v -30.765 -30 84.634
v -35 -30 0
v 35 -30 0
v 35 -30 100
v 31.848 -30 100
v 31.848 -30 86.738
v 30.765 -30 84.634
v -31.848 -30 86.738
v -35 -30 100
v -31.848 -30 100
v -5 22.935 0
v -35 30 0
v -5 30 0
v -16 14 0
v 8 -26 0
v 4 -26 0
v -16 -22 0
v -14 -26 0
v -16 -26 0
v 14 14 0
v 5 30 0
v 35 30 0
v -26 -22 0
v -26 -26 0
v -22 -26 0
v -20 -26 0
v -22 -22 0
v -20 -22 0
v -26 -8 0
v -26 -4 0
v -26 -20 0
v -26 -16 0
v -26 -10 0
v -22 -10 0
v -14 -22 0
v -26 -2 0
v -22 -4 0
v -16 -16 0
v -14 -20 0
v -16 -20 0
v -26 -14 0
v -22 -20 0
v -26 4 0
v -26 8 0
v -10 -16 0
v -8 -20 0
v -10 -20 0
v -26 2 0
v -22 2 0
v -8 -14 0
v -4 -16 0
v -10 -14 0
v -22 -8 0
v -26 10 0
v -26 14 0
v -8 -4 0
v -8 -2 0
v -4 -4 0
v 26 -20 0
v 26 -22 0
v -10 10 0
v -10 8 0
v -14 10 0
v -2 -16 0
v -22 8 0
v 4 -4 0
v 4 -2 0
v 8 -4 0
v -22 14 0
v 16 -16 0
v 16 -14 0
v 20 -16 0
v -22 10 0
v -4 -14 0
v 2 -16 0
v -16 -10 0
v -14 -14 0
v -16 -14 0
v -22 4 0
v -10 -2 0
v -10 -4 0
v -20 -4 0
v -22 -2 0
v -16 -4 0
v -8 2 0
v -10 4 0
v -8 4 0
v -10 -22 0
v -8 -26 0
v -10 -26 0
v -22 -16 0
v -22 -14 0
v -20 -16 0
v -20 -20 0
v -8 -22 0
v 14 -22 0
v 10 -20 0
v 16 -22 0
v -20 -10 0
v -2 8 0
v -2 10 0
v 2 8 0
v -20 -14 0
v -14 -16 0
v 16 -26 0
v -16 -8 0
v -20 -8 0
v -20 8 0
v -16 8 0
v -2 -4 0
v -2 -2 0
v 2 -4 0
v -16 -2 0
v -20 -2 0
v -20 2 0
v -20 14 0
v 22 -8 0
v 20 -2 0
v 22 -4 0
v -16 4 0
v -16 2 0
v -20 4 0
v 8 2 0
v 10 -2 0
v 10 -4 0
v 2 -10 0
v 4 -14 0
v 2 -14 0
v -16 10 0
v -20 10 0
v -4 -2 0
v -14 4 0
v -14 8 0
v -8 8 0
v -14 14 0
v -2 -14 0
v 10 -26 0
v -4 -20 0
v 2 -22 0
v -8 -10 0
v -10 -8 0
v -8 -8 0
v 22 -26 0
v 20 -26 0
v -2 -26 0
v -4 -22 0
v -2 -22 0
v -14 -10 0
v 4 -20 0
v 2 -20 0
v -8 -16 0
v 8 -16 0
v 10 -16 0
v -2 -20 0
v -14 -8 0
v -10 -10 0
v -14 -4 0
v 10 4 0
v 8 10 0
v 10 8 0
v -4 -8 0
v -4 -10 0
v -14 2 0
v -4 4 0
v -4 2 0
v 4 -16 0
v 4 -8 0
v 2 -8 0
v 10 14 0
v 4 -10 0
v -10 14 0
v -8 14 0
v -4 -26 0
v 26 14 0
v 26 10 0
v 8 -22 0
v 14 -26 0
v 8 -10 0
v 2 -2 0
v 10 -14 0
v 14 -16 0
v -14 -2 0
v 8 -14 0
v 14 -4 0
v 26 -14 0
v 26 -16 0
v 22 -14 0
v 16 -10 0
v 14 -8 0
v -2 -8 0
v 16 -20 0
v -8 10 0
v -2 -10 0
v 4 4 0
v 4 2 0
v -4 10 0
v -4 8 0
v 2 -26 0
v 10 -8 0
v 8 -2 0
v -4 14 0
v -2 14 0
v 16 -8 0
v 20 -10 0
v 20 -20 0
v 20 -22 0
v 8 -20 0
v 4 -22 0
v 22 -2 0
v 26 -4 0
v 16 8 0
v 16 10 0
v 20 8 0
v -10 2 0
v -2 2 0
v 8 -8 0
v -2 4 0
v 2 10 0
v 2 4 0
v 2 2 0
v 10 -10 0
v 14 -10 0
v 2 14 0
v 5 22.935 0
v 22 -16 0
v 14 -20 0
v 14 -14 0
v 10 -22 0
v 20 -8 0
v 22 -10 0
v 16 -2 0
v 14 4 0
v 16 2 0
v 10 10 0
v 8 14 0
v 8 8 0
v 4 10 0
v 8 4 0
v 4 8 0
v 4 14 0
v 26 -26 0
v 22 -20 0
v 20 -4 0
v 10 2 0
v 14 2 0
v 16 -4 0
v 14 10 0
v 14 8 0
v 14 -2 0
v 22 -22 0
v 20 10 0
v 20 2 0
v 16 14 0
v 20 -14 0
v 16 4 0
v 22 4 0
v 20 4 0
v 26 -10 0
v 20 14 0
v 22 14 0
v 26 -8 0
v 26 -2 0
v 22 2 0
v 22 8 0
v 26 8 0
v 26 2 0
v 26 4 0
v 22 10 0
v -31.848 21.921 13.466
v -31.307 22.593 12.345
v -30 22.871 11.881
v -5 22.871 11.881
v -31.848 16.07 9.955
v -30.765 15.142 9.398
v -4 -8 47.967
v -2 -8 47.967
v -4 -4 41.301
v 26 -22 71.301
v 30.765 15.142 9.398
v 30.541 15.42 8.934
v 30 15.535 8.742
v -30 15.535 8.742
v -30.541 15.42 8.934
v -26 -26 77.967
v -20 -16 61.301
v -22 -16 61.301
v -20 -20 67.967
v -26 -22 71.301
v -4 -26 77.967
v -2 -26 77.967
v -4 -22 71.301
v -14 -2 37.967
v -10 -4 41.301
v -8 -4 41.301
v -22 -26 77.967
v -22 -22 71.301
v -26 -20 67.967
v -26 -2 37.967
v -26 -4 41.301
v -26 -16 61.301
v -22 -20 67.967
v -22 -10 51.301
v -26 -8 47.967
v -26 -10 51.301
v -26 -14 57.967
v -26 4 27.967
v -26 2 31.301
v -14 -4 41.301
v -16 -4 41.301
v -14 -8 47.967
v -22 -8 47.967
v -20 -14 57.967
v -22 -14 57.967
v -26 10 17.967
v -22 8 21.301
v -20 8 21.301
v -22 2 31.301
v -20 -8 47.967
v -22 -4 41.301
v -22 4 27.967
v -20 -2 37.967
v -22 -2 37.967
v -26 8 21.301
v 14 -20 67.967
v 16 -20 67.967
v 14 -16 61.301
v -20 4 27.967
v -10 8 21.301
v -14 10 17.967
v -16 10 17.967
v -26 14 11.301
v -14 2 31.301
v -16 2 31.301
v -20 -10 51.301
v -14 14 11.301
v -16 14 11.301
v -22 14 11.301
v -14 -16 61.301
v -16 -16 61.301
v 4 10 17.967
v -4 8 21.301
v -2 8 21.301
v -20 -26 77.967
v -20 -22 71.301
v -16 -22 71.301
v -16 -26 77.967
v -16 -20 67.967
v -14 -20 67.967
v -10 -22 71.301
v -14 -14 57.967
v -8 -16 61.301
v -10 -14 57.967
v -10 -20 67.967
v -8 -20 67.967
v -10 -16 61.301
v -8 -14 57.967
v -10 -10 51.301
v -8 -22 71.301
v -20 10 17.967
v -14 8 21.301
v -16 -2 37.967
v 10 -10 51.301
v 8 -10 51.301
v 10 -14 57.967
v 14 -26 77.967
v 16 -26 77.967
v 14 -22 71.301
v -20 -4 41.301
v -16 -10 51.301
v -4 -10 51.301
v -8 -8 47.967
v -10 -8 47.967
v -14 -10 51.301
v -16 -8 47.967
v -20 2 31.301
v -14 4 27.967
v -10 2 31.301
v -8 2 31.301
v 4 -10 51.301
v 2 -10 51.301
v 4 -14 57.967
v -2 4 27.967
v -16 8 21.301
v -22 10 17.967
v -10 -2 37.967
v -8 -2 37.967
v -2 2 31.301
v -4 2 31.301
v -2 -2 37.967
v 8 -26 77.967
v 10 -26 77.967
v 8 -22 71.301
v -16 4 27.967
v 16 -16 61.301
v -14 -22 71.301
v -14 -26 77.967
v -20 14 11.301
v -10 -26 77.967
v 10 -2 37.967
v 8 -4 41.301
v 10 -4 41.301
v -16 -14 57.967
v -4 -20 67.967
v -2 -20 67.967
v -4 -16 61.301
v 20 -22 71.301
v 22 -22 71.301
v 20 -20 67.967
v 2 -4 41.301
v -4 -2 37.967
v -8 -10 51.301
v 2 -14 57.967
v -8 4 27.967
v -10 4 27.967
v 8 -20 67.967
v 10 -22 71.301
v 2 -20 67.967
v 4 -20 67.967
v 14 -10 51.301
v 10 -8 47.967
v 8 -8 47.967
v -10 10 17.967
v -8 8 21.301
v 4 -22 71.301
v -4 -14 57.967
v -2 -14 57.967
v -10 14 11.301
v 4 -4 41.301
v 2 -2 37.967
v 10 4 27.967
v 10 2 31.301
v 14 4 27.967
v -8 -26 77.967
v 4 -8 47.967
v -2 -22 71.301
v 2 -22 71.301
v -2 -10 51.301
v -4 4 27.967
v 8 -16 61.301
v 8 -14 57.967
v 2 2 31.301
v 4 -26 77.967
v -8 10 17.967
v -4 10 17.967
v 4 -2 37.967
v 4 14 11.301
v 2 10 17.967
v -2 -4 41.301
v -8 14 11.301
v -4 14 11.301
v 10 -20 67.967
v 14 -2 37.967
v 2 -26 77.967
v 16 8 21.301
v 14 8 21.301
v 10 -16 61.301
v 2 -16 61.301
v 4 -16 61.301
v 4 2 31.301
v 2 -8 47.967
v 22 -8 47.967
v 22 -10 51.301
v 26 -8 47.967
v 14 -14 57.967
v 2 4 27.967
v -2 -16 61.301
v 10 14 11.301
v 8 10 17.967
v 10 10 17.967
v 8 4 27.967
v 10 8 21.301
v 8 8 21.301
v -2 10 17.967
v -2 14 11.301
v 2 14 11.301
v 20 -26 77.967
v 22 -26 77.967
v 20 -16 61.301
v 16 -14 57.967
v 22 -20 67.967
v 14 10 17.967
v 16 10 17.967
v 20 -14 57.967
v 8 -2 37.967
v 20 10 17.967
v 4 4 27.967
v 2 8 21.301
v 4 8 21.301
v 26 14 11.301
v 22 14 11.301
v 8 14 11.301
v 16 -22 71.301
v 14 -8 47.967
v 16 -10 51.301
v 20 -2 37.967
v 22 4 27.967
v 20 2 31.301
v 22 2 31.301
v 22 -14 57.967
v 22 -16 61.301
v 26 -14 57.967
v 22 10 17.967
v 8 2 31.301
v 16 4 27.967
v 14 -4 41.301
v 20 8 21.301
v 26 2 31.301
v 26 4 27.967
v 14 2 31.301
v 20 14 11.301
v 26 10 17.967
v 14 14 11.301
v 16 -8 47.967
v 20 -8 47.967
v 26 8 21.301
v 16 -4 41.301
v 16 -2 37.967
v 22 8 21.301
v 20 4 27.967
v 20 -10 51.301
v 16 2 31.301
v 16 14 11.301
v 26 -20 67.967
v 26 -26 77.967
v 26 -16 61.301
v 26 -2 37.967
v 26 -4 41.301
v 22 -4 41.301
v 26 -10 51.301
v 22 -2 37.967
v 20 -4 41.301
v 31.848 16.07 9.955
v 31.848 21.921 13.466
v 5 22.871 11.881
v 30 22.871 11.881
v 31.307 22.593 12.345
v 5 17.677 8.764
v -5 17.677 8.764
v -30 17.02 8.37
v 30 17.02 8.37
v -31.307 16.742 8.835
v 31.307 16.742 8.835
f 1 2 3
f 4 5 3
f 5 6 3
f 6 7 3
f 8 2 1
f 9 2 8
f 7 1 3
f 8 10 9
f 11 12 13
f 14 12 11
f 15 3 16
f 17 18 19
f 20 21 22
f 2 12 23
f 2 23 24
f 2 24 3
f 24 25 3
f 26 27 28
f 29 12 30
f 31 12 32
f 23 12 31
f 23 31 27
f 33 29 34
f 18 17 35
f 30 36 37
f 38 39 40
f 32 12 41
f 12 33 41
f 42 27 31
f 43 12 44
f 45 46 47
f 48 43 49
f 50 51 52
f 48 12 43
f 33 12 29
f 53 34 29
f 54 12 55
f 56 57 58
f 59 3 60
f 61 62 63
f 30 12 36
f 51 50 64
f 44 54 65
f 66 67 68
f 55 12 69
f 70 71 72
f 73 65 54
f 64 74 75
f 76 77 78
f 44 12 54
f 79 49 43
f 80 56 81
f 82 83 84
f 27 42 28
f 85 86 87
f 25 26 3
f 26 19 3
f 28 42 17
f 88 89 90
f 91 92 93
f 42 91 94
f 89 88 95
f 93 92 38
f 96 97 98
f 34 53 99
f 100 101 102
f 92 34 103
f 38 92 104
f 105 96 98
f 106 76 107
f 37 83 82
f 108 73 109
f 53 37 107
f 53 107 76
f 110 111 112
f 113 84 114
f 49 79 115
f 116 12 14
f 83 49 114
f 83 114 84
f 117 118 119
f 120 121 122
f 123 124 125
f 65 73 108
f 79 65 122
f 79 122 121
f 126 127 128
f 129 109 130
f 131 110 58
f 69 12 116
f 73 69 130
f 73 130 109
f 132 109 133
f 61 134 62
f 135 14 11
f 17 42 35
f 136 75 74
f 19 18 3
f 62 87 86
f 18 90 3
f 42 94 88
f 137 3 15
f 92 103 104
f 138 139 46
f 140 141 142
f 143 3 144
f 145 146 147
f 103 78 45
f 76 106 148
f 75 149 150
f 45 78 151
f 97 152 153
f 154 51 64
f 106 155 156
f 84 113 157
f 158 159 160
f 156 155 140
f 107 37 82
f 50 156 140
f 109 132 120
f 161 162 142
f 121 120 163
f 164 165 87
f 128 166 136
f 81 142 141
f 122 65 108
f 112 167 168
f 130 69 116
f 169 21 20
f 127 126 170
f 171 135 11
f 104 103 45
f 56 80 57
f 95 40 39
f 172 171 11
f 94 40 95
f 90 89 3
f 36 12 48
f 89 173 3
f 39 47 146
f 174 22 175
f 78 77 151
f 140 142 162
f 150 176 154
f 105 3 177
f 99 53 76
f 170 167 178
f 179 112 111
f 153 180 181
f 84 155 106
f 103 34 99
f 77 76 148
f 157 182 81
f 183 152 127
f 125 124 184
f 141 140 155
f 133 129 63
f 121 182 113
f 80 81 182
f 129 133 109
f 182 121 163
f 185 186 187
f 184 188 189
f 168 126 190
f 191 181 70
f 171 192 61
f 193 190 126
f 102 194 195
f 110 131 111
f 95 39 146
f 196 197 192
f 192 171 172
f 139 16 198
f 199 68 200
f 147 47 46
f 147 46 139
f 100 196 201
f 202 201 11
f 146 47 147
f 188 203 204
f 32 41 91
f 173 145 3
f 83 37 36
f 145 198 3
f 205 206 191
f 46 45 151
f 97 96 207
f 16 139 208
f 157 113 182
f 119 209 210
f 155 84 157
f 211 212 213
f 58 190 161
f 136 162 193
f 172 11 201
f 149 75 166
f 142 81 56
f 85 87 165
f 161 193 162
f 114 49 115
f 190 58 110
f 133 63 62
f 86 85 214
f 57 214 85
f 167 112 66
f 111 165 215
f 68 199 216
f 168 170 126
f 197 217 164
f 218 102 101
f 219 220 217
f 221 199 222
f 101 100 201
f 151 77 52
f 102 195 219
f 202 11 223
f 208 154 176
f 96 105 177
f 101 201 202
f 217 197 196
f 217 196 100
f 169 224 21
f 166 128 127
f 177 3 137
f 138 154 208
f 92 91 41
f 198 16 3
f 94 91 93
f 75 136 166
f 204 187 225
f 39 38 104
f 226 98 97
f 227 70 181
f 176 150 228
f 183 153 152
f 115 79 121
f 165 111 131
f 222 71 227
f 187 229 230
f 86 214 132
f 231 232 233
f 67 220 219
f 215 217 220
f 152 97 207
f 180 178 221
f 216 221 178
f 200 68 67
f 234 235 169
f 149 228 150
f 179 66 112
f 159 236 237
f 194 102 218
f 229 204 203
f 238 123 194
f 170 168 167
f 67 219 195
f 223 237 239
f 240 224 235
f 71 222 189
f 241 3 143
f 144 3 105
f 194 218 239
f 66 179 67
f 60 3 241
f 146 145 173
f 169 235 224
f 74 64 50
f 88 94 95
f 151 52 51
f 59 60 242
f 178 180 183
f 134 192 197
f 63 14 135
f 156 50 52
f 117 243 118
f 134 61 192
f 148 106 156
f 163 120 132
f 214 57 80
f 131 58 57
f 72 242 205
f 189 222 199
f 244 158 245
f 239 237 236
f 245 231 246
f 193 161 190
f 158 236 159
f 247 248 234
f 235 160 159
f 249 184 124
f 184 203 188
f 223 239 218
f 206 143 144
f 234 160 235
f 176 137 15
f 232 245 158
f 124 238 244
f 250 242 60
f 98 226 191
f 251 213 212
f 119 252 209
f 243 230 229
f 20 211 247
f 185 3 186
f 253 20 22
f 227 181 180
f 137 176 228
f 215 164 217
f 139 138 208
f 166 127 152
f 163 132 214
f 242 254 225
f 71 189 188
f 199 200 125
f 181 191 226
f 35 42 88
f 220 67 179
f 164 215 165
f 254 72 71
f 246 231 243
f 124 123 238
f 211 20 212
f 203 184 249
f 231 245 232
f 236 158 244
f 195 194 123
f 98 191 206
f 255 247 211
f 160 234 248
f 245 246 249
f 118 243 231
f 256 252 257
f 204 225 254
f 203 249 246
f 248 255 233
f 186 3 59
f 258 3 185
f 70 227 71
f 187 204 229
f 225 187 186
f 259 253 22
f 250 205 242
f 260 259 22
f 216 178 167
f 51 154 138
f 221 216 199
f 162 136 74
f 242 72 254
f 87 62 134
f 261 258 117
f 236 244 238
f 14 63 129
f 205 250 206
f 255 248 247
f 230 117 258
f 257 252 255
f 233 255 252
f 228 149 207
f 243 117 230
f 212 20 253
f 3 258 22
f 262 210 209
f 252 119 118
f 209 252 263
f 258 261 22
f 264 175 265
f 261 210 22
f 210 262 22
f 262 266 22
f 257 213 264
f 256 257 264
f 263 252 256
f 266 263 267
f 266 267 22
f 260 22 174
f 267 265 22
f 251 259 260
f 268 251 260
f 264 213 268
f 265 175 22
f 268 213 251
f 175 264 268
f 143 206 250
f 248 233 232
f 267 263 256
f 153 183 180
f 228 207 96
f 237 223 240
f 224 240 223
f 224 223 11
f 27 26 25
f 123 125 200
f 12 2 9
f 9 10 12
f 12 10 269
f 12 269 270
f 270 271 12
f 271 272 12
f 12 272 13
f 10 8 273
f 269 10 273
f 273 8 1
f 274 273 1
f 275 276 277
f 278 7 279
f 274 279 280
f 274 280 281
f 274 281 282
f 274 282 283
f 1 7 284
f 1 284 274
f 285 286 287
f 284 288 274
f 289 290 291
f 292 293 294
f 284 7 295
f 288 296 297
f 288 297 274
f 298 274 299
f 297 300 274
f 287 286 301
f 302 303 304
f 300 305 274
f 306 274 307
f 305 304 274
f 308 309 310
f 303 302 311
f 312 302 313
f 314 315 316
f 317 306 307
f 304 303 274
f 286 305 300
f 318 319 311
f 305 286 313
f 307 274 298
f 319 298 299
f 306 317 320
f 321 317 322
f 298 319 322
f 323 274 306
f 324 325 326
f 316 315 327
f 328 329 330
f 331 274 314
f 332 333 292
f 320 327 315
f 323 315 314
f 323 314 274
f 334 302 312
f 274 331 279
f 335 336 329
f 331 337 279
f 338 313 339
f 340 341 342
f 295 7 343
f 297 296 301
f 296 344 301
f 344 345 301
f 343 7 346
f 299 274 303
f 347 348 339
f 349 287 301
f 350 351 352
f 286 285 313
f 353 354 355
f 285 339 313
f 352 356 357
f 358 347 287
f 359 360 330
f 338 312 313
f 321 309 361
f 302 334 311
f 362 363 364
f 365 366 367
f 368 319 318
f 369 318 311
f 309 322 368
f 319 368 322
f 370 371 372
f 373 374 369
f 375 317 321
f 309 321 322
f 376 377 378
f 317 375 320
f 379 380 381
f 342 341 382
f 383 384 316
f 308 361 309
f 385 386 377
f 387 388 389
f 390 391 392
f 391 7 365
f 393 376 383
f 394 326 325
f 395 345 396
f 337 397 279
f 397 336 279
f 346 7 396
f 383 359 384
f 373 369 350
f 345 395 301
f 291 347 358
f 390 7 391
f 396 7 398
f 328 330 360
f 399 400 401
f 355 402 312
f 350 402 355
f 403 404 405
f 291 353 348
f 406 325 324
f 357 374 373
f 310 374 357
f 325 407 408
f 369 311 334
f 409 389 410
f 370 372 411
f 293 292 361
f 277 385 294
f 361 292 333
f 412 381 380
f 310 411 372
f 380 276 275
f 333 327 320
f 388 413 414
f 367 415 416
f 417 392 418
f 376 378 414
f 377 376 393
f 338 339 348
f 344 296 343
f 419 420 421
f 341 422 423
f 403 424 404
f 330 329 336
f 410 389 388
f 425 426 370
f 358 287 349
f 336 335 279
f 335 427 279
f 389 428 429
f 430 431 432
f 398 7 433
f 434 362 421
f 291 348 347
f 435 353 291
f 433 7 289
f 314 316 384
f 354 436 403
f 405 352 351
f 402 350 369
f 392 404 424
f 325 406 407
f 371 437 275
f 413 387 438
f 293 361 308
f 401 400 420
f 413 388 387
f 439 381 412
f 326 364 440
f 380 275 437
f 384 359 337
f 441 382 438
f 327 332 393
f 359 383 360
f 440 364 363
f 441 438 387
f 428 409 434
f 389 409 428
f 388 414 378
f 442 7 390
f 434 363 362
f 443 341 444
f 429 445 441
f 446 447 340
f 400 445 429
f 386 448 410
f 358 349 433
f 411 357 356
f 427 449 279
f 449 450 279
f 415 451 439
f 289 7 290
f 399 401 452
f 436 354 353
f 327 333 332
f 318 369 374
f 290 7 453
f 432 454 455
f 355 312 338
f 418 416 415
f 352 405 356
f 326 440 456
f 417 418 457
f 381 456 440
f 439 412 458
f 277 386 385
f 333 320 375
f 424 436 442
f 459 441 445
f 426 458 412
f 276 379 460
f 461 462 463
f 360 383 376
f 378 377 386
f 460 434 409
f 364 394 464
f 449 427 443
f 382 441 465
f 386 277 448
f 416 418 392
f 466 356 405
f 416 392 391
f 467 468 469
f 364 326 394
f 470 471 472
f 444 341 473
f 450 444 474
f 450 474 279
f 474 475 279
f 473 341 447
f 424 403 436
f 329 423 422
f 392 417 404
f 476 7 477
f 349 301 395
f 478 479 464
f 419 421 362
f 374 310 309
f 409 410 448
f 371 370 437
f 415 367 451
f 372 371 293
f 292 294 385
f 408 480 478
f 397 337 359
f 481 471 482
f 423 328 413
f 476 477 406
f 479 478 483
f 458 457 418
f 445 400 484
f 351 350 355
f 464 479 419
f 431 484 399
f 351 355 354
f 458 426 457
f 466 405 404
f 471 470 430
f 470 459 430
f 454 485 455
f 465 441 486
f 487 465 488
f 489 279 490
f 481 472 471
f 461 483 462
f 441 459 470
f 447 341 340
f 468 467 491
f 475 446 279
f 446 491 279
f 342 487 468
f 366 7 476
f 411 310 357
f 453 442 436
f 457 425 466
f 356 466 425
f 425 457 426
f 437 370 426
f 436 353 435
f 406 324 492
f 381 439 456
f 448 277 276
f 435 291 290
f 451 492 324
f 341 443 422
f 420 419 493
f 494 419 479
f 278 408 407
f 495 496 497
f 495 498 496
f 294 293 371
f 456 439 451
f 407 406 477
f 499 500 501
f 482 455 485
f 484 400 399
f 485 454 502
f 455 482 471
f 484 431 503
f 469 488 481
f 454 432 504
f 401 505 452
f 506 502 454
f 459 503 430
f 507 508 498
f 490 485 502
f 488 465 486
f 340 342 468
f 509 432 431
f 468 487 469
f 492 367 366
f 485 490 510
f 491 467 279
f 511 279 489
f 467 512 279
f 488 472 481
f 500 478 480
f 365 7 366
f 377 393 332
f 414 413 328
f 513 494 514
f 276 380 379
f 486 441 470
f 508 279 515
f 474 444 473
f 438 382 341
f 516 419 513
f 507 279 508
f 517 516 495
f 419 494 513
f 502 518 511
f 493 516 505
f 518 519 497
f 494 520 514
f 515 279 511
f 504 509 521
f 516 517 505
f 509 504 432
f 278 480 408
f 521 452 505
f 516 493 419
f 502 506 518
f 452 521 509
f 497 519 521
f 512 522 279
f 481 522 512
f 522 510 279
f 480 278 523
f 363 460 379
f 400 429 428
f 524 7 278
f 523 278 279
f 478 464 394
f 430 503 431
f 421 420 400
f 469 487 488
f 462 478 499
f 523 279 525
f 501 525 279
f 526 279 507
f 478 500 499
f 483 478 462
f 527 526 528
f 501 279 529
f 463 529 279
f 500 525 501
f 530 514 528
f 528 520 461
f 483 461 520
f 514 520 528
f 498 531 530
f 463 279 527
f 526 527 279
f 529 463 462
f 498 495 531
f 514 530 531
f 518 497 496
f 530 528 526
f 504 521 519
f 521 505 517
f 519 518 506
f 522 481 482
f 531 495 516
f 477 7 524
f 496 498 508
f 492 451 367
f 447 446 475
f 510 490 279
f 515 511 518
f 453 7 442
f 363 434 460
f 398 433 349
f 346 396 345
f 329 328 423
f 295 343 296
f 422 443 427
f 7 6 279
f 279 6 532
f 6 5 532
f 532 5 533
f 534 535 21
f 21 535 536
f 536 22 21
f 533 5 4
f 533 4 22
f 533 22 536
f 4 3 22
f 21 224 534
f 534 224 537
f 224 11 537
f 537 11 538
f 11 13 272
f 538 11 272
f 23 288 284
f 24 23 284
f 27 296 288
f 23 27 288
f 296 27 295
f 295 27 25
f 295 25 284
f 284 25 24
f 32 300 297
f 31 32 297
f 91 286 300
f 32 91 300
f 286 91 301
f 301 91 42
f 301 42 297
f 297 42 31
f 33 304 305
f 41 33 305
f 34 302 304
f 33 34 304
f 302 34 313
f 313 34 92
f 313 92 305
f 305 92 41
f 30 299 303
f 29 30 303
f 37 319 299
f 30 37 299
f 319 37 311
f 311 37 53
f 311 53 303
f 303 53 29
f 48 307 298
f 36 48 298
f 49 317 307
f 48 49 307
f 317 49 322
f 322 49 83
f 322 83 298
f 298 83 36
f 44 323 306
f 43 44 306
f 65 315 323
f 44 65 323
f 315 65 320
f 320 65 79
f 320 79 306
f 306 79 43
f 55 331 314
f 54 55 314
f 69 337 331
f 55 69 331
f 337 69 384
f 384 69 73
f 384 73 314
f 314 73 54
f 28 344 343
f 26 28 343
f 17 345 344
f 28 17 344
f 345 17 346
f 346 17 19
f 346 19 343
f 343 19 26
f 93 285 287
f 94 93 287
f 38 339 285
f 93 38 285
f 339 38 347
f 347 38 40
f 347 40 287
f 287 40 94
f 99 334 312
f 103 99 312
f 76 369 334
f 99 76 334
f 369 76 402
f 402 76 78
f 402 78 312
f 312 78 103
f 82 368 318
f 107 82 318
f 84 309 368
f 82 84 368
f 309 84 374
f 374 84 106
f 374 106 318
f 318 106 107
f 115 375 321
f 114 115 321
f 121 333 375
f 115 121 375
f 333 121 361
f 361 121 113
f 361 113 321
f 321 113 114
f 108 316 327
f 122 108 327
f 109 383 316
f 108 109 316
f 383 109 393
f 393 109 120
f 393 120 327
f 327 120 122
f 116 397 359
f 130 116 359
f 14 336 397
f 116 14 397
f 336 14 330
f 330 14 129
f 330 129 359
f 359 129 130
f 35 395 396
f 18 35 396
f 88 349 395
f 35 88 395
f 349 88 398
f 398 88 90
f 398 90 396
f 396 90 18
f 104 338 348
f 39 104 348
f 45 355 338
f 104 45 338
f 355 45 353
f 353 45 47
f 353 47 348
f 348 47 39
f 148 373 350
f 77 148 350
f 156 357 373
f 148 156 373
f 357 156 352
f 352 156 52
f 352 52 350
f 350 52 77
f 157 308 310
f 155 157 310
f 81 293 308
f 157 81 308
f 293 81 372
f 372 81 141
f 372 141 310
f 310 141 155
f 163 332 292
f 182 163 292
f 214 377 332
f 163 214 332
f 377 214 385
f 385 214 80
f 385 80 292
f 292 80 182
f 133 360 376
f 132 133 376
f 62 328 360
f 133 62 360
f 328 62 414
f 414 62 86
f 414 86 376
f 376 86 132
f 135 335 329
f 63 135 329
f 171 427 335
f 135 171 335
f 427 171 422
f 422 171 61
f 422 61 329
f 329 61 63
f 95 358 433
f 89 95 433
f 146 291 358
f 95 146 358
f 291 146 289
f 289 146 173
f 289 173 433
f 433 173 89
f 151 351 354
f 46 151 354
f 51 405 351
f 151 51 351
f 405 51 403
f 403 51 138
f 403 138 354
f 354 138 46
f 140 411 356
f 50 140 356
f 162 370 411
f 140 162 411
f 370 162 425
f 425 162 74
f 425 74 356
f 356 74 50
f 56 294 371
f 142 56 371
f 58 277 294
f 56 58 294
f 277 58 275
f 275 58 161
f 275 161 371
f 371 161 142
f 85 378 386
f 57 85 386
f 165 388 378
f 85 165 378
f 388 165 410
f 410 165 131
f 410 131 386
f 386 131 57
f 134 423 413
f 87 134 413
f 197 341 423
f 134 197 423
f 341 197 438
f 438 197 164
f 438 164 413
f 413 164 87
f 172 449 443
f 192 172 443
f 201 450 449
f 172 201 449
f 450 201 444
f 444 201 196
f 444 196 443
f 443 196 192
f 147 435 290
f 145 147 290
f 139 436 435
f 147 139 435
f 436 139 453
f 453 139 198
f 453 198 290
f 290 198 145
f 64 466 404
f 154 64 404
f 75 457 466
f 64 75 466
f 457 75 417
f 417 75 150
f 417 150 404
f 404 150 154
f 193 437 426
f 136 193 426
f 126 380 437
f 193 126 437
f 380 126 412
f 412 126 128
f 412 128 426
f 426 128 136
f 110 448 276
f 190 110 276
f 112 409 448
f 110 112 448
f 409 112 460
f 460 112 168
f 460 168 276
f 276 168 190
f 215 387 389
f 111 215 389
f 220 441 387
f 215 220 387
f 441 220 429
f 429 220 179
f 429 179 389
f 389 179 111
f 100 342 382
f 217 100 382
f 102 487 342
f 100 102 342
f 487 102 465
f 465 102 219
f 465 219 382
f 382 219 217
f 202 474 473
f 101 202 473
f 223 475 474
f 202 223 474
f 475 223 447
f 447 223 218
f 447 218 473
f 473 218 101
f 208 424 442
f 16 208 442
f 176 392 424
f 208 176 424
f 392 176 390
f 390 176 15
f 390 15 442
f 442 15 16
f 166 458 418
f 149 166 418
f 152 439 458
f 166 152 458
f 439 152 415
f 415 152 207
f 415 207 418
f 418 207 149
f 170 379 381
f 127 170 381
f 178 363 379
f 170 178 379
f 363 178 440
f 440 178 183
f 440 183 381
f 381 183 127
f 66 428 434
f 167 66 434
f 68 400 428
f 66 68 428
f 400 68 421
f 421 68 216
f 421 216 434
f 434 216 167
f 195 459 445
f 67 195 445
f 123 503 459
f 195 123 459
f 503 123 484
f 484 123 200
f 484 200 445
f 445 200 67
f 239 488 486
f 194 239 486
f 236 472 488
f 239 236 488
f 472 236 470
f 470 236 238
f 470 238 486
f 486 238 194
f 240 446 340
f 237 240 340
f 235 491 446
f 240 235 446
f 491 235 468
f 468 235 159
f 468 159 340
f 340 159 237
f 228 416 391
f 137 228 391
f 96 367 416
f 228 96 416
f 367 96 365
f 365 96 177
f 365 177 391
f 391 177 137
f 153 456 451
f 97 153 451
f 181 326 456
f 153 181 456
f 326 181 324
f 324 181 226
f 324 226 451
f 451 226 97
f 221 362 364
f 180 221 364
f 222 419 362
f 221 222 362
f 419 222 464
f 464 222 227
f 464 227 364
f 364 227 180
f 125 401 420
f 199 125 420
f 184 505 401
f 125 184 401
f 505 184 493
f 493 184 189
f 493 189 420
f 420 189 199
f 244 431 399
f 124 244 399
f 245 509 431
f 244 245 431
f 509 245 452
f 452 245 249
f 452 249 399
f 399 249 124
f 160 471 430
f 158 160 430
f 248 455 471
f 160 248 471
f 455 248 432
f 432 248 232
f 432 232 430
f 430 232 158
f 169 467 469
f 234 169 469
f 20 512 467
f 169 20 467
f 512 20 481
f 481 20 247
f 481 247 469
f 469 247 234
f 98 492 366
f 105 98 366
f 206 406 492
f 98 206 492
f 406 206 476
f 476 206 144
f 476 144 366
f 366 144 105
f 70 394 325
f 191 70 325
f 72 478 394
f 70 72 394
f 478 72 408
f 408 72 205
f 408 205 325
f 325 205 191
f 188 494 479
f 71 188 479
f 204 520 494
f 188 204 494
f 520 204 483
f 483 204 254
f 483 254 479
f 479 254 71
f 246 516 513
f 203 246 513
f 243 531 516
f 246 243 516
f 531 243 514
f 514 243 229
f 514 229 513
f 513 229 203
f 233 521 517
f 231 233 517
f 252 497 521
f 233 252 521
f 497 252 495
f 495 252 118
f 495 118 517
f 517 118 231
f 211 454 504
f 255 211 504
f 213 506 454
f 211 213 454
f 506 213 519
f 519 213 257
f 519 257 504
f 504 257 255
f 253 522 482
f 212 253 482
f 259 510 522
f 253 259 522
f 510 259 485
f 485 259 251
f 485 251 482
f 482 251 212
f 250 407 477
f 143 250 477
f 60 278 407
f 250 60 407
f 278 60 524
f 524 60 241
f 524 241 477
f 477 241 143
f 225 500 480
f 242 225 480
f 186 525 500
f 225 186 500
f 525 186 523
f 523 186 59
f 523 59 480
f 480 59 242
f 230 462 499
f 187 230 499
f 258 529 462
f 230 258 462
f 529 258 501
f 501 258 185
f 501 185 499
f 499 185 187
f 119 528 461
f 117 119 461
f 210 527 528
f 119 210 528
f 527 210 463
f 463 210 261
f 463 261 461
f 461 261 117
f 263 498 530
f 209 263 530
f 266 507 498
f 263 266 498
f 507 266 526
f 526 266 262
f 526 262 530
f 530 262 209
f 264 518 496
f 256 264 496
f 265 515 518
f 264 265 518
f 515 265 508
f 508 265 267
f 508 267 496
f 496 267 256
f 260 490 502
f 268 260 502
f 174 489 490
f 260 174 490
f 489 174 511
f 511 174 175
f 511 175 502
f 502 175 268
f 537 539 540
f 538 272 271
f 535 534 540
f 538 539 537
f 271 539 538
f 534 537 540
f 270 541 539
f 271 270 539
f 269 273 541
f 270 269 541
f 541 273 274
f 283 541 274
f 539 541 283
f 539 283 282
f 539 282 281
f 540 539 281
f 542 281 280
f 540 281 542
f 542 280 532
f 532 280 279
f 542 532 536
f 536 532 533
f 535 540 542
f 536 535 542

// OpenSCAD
// file: pieces/phone.scad
//phone
module phone()
{

	union(){
		color("silver") minkowski()
		{
			cube(size=[61,125,8], center=true);
			//cylinder(r=1,h=1);
			sphere(r=1,$fn=8);
		}
		
		//usb connector
		color("red")
		translate([0,62.5,0]){
			cube(size=[8,8,2],center=true);
		}
	}
};

module dock(deep){
	phone();	
};

dock(60);
// main file
$fn=8;
use <./pieces/phone.scad>;

module dock(height){

difference(){

	polyhedron(
		points = [[35,30,0],[-35,30,0],[-35,-30,0],[35,-30,0],[35,-30,height],[-35,-30,height]],
		faces = [[0,1,2],[0,2,3],[0,3,4],[2,1,5],[0,4,5],[1,0,5],[2,5,4],[3,2,4]],
	convexity=300
	);

	//TODO adapte value
	translate([0,-12,height/2+16])
	rotate([-atan2(height,60),0,0])
	union(){ 
		color("silver")
		minkowski()
		{
			cube(size=[60,125,8], center=true);
			//cylinder(r=1,h=1);
			sphere(r=2);
		}
		color("red")
		translate([0,(125+20)/2,0])
		cube(size=[10,20,8],center=true);	
	}
	for(x=[-24:6:24]){
	for(y=[-24:6:12]){
		translate([x,y,50])
		cube(size=[4,4,100],center=true);
	}
	}
}	
	//phone();	
};

dock(100);
